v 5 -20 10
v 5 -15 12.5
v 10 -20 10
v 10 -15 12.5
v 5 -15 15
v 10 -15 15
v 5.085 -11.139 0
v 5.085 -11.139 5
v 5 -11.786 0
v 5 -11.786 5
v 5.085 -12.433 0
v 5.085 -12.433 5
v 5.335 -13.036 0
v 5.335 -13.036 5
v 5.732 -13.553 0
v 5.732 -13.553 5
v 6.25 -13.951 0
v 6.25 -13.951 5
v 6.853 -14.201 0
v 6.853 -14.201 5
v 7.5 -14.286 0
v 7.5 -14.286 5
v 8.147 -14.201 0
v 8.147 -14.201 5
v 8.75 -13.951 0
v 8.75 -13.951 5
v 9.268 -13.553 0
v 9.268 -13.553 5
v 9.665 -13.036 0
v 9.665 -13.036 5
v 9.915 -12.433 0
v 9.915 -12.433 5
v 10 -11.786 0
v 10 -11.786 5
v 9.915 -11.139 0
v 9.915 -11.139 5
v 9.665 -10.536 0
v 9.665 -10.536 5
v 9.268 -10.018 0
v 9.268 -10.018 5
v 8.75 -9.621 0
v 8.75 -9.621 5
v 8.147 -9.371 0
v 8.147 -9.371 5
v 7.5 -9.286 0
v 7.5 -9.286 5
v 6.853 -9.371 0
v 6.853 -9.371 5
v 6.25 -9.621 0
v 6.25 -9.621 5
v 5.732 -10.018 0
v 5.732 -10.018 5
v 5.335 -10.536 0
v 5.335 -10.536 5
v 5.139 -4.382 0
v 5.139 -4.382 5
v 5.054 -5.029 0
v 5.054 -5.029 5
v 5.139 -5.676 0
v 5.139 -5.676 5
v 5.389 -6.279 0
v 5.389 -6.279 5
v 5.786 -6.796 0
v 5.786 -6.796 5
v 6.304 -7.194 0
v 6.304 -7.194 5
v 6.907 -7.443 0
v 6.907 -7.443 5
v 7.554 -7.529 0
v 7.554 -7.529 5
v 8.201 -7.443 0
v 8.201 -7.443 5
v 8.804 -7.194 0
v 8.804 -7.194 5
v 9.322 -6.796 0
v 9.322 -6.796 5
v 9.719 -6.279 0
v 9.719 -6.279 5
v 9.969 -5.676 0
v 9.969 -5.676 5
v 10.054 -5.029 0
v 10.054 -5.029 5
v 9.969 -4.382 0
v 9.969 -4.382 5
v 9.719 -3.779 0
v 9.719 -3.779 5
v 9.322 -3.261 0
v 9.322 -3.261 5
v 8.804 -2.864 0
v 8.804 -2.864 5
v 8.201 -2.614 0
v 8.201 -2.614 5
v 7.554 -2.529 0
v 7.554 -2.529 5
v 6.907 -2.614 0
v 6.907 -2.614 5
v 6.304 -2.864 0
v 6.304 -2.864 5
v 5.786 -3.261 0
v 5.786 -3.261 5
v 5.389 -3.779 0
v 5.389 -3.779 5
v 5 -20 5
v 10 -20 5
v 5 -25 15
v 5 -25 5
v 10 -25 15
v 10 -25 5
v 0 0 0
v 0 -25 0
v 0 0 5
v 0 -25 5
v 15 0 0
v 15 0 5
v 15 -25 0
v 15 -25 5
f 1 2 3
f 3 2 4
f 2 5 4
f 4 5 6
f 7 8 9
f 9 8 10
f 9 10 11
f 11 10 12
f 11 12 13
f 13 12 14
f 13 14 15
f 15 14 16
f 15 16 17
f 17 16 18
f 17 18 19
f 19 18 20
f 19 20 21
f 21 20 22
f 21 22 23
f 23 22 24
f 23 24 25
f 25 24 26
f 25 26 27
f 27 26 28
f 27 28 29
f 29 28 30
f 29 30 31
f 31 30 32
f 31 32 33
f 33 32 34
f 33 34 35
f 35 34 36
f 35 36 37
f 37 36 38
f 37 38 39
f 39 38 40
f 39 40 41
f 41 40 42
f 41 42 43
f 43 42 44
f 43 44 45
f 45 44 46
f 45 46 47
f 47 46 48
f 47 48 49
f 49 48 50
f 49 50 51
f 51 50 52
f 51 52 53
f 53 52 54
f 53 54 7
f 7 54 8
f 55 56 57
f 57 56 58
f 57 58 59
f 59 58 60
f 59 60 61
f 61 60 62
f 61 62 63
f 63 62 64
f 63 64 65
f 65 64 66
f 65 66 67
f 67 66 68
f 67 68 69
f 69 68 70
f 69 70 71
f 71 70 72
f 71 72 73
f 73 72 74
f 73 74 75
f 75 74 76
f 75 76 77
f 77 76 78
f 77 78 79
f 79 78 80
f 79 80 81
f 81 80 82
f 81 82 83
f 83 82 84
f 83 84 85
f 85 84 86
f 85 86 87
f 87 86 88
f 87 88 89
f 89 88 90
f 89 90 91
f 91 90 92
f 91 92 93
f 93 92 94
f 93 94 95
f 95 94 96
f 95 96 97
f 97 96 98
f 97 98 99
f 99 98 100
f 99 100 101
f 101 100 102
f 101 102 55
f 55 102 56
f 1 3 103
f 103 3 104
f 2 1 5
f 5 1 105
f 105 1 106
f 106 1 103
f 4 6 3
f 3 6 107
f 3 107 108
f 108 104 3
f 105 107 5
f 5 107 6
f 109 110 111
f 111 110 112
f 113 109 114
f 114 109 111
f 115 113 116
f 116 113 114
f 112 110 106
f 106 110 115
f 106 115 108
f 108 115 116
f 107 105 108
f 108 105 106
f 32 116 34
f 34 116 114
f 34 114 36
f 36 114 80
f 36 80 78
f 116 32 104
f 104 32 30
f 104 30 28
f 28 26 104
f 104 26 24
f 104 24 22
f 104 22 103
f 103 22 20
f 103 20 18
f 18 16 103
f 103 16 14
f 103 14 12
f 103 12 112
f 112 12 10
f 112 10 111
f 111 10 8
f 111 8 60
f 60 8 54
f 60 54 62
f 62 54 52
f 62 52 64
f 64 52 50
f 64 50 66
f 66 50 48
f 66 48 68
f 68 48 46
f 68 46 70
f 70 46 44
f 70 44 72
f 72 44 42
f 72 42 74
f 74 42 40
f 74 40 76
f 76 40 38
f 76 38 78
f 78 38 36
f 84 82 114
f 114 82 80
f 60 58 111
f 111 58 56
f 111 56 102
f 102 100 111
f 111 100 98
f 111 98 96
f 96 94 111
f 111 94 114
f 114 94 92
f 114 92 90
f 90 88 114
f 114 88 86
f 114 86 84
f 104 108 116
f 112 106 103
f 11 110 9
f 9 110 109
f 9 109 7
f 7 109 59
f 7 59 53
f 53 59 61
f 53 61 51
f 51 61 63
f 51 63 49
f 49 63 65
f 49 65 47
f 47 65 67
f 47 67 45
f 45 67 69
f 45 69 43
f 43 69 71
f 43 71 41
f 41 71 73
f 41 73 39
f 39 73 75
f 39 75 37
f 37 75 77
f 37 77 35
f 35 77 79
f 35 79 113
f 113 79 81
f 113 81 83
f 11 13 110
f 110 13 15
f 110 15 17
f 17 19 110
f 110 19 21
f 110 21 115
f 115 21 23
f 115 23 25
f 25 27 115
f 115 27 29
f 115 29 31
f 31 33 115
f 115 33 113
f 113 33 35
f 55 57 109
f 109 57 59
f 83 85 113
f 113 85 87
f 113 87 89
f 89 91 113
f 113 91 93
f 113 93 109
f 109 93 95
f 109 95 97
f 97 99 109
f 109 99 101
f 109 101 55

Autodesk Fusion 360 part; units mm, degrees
sketch "Skizze1" plane through (0, 0, 0) normal (0, 0, 1) x (1, 0, 0)
  line L0 (0, 0) -> (15, 0)
  line L1 (15, 0) -> (15, -25)
  line L2 (15, -25) -> (0, -25)
  line L3 (0, -25) -> (0, 0)
extrude "Extrusion1" add sketch "Skizze1" along normal blind 5
sketch "Skizze2" plane through (0, 0, 5) normal (0, 0, 1) x (-1, 0, 0)
  line L0 (0, 25) -> (-15, 25)
  line L1 (-15, 25) -> (-15, 0)
  line L2 (-15, 0) -> (0, 0)
  line L3 (0, 0) -> (0, 25)
  line L4 (-5, 20) -> (-10, 20)
  line L5 (-10, 20) -> (-10, 25)
  line L6 (-10, 25) -> (-5, 25)
  line L7 (-5, 25) -> (-5, 20)
  dimension "d3" = 5
extrude "Extrusion2" add sketch "Skizze2" along normal blind 10 contours L0 L4 L5 L6 L7
sketch "Skizze3" plane through (0, -20, 0) normal (0, 1, 0) x (-1, 0, 0)
  line L0 (-10, 5) -> (-5, 5)
  line L1 (-5, 5) -> (-5, 15)
  line L2 (-5, 15) -> (-10, 15)
  line L3 (-10, 15) -> (-10, 5)
  line L4 (-10, 15) -> (-5, 15)
  line L5 (-5, 15) -> (-5, 10)
  line L6 (-5, 10) -> (-10, 10)
  line L7 (-10, 10) -> (-10, 15)
extrude "Extrusion3" add sketch "Skizze3" along normal blind 5 contours L1 L2 L3 L4 L5 L6 L7
hole "Bohrung1" at (7.5542, -5.0286, 5) direction (0, 0, -1) diameter 5 depth 15 tip angle 118
hole "Bohrung2" at (7.5, -11.7857, 5) direction (0, 0, -1) diameter 5 depth 15 tip angle 118
sketch "Skizze4" plane through (5, 0, 0) normal (-1, 0, 0) x (0, -1, 0)
  line L0 (20, 5) -> (25, 5)
  line L1 (25, 5) -> (25, 15)
  line L2 (25, 15) -> (15, 15)
  line L3 (15, 15) -> (15, 10)
  line L4 (15, 10) -> (20, 10)
  line L5 (20, 10) -> (20, 5)
  line L6 (20, 10) -> (15, 12.5)
  line L7 (15, 10) -> (20, 10)
extrude "Extrusion4" cut sketch "Skizze4" against normal blind 5 contours L3 L4 L6 L7
